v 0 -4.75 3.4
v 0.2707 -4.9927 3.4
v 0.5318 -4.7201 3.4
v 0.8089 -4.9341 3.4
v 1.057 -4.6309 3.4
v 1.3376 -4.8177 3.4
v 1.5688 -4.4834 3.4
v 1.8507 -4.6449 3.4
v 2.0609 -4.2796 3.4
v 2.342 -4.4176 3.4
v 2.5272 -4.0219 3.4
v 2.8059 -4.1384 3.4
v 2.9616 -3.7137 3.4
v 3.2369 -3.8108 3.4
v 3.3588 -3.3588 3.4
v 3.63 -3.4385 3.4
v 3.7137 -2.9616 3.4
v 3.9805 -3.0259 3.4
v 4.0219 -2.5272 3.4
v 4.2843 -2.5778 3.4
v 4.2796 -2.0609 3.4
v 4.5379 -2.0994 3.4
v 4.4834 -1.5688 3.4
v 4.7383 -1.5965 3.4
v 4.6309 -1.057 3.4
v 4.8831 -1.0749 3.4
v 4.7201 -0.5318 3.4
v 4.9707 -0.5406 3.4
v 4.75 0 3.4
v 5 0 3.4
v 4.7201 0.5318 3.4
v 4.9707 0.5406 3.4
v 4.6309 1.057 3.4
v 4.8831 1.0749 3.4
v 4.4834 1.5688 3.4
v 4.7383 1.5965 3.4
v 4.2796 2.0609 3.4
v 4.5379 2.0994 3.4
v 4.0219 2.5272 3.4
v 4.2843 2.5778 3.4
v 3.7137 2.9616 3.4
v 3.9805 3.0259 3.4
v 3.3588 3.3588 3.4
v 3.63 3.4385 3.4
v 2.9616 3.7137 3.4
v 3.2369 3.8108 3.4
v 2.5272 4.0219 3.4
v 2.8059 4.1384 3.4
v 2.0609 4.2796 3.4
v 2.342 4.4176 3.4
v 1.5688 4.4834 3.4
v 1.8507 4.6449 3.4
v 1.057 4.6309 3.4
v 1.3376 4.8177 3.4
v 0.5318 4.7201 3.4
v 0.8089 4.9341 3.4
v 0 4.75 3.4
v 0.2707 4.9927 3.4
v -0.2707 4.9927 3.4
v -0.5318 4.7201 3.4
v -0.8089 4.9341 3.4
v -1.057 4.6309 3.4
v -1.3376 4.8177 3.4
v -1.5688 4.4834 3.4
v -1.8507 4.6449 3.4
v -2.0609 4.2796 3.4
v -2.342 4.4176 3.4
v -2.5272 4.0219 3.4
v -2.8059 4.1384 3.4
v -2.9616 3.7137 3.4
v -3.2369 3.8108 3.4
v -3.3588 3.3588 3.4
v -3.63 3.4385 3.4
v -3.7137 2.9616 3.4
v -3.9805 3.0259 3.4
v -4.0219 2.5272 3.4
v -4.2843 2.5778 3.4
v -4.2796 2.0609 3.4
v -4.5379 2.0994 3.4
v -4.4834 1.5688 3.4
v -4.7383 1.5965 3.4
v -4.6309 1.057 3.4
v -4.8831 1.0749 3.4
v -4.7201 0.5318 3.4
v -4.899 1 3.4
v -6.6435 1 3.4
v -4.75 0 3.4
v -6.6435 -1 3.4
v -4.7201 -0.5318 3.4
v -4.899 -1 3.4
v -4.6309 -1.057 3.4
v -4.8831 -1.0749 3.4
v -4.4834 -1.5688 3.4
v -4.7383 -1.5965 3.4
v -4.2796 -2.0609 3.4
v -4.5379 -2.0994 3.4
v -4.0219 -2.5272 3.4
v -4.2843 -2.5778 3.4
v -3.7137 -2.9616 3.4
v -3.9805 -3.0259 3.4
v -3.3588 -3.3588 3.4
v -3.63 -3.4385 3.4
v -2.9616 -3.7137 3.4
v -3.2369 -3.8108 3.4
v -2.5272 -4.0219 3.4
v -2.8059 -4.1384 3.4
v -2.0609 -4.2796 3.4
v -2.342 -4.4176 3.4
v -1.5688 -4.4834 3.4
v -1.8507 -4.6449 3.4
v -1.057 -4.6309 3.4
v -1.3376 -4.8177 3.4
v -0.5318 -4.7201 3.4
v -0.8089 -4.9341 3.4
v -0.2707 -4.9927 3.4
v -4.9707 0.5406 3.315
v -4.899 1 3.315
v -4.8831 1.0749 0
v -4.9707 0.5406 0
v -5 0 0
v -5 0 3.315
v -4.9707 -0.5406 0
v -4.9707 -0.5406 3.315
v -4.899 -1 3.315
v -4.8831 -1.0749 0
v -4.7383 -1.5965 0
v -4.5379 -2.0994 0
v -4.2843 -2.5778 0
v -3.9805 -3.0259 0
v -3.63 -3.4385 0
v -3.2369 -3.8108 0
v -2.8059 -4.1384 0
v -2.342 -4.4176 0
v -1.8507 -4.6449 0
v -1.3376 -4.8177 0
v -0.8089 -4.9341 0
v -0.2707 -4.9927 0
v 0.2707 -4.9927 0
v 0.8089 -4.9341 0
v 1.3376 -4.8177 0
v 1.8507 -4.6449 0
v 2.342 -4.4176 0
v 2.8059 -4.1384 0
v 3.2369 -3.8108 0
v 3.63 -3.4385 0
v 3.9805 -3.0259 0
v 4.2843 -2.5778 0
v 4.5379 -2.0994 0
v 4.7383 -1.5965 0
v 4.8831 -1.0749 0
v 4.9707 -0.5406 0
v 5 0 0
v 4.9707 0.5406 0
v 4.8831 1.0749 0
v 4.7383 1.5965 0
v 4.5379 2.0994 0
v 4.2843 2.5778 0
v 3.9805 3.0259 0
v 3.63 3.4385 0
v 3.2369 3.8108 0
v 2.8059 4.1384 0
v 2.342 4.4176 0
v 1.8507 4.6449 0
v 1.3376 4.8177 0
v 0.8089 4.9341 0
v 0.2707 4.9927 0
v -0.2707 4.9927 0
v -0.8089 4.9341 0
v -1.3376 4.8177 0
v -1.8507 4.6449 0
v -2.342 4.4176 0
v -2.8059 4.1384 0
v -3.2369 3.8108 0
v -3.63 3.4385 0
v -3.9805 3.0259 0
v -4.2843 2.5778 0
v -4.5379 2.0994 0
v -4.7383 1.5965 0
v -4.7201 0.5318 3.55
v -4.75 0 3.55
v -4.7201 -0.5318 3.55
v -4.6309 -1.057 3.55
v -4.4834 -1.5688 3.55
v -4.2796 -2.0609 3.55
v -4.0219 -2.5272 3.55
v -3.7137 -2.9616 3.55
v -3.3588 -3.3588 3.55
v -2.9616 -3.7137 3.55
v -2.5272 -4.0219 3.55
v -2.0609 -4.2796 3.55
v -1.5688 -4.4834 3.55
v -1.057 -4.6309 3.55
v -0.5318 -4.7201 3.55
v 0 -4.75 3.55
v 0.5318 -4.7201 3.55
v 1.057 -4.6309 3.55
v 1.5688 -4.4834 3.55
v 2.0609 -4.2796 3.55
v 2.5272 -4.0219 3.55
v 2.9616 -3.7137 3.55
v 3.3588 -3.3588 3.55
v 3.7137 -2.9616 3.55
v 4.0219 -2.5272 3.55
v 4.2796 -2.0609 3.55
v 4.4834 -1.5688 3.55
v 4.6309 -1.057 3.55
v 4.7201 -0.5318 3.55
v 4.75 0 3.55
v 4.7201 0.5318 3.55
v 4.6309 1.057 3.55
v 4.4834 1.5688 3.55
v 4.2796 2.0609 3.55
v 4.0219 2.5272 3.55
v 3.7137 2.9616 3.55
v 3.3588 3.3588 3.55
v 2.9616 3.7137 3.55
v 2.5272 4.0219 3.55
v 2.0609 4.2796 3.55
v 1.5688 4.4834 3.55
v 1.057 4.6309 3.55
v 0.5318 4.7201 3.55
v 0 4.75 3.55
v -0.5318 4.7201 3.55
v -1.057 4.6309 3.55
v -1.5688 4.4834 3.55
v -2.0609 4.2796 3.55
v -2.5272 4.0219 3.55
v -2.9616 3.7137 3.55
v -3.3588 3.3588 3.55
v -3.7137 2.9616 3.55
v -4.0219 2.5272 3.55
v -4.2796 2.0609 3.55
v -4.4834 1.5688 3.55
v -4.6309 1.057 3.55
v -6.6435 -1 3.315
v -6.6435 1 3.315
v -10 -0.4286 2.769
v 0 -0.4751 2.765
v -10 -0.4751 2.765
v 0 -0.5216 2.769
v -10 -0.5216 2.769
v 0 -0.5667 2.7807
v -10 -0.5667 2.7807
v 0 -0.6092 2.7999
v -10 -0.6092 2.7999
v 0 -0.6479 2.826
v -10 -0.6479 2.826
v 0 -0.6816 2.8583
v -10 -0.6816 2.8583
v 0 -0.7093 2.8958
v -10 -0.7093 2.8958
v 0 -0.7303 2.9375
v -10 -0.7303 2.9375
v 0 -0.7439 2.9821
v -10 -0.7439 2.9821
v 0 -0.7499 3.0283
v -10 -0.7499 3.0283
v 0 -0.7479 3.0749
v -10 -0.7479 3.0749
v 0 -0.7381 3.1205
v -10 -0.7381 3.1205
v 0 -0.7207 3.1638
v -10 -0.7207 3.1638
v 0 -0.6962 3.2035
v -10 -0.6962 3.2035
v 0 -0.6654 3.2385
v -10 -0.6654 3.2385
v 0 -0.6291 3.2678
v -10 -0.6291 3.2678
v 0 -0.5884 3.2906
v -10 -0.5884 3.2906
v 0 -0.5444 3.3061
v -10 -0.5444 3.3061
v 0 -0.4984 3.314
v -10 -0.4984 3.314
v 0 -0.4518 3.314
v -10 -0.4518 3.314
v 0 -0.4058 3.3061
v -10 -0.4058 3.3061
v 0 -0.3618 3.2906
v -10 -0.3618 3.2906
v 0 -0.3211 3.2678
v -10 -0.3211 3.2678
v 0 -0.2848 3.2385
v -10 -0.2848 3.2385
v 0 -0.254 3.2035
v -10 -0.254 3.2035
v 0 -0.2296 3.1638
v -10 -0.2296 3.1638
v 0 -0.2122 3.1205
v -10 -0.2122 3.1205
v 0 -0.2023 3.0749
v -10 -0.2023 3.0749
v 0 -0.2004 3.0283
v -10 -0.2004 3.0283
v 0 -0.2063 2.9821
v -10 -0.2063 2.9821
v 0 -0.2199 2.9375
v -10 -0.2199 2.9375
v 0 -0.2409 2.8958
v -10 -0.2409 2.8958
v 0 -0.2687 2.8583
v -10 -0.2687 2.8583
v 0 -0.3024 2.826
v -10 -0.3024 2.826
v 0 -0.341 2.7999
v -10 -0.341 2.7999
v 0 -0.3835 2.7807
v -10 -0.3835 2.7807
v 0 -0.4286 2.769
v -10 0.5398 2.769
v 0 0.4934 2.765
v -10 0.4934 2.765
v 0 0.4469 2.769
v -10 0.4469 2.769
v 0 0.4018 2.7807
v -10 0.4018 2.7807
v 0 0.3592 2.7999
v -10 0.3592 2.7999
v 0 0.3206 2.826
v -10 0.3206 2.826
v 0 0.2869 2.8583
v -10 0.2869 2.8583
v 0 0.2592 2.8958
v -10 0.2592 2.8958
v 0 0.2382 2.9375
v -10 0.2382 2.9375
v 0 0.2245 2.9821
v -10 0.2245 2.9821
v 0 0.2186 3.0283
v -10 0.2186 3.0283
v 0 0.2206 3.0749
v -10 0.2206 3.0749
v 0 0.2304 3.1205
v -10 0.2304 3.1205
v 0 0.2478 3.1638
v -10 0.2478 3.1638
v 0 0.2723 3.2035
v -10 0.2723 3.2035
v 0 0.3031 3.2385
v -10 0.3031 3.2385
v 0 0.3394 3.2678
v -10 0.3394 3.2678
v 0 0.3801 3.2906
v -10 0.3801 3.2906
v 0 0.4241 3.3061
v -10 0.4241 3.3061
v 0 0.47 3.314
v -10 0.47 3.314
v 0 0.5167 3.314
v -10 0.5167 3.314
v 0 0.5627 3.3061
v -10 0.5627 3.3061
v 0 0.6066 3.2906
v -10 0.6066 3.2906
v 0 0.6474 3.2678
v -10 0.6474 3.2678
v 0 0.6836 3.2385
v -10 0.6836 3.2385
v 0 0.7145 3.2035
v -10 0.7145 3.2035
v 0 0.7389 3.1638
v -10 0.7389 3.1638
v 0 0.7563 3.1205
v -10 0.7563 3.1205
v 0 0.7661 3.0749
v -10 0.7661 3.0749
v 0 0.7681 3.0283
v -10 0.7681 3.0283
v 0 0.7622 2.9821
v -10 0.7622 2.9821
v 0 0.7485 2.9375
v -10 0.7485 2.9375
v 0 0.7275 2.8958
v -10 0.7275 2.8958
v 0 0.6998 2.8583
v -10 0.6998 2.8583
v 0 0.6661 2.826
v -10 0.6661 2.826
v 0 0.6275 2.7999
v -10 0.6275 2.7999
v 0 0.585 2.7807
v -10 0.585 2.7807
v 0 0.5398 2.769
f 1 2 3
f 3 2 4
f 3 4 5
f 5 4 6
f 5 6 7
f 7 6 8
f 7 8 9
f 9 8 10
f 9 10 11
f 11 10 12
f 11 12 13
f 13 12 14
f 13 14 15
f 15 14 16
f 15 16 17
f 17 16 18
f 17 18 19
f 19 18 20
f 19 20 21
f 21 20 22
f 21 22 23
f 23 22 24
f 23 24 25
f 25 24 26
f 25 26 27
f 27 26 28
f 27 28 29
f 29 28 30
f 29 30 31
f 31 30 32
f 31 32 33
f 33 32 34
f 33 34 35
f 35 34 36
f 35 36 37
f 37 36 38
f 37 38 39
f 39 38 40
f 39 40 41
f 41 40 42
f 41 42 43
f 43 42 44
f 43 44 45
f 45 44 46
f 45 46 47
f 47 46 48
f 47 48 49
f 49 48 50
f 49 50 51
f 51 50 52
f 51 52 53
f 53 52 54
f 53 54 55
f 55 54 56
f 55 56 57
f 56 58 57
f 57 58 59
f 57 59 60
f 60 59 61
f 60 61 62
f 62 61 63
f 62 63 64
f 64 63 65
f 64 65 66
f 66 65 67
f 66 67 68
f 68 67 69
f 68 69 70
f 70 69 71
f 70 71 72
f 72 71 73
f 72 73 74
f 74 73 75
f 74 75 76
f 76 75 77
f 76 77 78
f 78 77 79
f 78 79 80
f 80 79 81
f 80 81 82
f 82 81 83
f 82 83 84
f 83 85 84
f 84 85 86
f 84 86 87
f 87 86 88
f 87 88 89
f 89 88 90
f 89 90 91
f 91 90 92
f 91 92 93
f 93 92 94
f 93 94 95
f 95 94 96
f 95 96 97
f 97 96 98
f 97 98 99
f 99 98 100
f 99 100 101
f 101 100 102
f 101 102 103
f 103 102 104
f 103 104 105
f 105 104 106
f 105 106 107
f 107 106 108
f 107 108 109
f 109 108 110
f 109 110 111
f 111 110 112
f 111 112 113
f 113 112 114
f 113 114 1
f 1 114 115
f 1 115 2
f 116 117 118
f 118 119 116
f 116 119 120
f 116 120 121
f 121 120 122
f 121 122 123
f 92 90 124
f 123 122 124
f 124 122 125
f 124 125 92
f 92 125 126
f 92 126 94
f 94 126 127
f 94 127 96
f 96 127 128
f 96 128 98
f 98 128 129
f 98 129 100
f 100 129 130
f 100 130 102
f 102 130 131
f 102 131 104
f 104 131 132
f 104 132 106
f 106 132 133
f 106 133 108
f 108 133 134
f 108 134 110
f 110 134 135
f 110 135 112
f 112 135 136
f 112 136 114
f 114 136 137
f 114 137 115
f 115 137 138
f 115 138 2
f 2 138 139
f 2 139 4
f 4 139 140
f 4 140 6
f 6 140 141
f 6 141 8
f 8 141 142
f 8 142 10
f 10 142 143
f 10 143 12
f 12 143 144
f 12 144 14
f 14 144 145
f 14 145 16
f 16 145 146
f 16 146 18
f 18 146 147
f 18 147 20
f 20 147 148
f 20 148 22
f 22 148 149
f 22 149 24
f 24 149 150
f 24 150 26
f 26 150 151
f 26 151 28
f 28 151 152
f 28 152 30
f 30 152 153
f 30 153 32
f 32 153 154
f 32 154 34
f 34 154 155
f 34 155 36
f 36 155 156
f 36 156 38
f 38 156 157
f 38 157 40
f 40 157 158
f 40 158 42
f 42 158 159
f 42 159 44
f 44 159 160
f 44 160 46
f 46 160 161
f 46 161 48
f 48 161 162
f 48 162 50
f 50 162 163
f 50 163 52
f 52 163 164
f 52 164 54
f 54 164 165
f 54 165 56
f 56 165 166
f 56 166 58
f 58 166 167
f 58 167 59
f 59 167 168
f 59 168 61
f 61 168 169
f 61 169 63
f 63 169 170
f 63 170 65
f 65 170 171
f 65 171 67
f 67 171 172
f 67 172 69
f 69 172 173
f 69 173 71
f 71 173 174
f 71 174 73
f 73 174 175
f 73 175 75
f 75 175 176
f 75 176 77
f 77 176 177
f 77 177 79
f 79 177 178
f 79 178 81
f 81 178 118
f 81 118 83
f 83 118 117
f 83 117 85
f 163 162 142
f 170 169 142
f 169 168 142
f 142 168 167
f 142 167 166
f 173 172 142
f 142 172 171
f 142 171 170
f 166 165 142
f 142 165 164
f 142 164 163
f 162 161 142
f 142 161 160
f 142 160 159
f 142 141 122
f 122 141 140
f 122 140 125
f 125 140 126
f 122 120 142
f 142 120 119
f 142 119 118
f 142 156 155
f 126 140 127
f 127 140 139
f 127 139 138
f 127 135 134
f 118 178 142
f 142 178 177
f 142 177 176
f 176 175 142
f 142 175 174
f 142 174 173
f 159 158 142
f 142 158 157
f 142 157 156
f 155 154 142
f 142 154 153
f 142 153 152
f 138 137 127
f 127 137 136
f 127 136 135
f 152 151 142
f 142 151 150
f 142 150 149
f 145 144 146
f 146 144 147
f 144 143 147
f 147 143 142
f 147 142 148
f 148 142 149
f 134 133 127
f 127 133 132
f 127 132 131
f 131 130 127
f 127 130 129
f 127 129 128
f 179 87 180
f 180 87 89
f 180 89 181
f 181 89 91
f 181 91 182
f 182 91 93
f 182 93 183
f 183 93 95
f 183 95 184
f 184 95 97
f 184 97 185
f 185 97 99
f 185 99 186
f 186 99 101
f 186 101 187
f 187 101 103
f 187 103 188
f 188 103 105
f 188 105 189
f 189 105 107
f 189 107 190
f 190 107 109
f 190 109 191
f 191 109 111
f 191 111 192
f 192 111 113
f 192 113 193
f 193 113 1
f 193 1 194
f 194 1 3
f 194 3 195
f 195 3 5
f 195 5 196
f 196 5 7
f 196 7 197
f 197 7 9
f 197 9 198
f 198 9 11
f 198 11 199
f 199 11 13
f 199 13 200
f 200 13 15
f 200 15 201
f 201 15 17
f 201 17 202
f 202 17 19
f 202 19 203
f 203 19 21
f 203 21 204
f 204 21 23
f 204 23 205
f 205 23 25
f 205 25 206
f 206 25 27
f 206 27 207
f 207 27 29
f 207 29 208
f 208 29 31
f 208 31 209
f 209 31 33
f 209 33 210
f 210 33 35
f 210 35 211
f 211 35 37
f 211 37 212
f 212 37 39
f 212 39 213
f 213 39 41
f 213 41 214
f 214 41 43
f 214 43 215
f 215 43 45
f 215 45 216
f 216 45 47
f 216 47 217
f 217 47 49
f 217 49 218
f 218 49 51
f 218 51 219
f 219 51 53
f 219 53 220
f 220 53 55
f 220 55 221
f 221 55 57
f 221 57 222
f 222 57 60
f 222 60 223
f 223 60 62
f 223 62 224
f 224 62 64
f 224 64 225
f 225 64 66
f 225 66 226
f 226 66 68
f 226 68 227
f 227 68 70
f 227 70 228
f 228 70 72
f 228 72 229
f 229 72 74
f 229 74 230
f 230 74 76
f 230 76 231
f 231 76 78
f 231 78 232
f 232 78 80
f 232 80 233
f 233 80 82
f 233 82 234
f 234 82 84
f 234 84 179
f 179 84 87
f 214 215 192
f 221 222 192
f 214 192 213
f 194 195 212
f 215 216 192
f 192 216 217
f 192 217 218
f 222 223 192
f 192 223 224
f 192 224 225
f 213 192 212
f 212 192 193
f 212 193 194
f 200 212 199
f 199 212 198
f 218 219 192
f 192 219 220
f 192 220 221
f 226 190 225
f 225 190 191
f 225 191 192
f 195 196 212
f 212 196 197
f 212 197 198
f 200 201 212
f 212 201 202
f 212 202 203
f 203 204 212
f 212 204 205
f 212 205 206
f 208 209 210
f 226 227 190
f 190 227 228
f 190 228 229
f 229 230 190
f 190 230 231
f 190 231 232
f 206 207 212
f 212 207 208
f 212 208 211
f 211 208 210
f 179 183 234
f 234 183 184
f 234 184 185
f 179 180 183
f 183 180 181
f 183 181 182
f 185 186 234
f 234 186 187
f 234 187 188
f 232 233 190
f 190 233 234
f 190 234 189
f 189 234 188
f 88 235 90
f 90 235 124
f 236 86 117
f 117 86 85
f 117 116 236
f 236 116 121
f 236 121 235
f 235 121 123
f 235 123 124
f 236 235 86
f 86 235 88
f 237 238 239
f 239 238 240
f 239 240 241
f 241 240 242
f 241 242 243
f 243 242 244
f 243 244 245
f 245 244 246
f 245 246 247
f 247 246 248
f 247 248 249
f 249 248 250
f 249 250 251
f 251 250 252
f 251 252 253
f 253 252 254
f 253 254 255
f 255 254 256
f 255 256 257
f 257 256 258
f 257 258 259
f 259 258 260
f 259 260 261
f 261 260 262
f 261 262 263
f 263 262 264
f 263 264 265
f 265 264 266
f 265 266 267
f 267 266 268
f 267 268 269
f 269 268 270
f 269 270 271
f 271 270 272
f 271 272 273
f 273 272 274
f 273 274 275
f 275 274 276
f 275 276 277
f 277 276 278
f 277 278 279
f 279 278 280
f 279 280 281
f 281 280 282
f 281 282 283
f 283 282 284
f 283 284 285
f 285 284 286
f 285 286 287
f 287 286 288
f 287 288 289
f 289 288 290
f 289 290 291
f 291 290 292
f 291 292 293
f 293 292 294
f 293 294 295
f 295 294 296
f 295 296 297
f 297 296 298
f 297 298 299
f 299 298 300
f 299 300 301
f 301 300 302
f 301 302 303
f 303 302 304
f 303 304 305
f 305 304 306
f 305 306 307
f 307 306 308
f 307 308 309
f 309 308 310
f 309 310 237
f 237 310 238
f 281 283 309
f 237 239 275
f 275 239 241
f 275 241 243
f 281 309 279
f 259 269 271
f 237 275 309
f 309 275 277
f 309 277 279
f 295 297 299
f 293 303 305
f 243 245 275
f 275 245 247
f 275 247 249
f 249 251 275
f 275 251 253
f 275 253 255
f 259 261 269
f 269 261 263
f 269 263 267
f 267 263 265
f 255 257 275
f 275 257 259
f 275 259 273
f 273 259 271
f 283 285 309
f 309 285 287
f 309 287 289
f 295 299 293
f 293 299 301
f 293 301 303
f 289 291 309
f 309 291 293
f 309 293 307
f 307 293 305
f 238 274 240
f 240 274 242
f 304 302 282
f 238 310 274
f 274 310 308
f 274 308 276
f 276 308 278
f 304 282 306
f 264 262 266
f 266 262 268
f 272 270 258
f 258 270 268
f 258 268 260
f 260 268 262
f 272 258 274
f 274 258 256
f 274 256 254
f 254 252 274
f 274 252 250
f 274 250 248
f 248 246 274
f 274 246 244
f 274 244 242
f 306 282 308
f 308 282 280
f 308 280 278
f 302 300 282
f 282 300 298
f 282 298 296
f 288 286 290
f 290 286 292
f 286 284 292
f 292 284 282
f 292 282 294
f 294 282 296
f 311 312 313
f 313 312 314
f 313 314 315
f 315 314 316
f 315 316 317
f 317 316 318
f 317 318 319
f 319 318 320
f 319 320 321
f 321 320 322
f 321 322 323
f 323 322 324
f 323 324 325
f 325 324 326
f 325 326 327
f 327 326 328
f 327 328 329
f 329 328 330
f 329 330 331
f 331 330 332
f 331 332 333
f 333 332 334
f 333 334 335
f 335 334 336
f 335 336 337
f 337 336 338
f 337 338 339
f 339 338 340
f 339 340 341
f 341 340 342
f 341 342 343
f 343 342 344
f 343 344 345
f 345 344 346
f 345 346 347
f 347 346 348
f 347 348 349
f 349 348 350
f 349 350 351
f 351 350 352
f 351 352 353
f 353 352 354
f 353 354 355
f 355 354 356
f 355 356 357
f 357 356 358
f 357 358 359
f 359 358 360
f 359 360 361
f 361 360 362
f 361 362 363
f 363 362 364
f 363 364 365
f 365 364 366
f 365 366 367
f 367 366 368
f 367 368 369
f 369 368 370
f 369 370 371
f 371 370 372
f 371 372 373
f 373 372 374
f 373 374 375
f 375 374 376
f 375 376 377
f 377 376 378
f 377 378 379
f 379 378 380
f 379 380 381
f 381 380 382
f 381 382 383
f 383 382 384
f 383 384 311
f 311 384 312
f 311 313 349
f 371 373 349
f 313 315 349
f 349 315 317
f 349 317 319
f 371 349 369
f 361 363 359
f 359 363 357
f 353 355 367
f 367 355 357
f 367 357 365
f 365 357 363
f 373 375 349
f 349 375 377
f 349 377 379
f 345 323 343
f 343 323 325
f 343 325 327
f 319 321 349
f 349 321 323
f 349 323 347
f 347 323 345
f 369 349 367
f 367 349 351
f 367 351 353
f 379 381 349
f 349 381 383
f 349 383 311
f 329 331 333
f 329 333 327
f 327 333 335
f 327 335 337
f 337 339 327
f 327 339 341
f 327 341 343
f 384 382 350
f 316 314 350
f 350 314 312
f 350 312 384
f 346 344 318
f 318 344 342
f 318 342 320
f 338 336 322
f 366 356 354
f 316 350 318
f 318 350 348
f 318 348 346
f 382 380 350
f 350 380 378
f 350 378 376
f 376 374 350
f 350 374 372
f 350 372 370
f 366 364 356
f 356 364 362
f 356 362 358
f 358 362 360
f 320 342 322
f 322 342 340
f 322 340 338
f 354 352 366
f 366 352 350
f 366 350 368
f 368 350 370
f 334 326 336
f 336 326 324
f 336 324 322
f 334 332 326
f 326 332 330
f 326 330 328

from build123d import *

# Parameters (mm, degrees)
SKETCH1_R             = 5
BOSS_EXTRUDE1_DEPTH   = 3.4
SKETCH2_R             = 4.75
BOSS_EXTRUDE2_DEPTH   = 0.15
BOSS_EXTRUDE3_DEPTH   = 0.085
SKETCH5_R             = 0.275
BOSS_EXTRUDE5_DEPTH   = 10
BOSS_EXTRUDE5_2_DEPTH = 10


with BuildPart() as part:
    # Sketch1 → Boss-Extrude1 (new body)
    with BuildSketch(Plane.XY):
        Circle(SKETCH1_R)
    extrude(amount=BOSS_EXTRUDE1_DEPTH)

    # Sketch2 → Boss-Extrude2 (add)
    with BuildSketch(Plane.XY.offset(3.4)):
        Circle(SKETCH2_R)
    extrude(amount=BOSS_EXTRUDE2_DEPTH)

    # Sketch4 → Boss-Extrude3 (add)
    with BuildSketch(Plane.XY.offset(3.4)):
        with BuildLine():
            Line((-4.643543905, 1), (-6.643543905, 1))
            Line((-6.643543905, 1), (-6.643543905, -1))
            Line((-6.643543905, -1), (-4.643543905, -1))
            ThreePointArc((-4.643543905, -1), (-4.75, 0), (-4.643543905, 1))
        make_face()
    extrude(amount=-BOSS_EXTRUDE3_DEPTH)


with BuildPart() as body_2:
    # Sketch5 → Boss-Extrude5 (new body)
    with BuildSketch(Plane(origin=(0, 0, 0), x_dir=(0, 0, -1), z_dir=(1, 0, 0))):
        with Locations((-3.04, 0.493364025)):
            Circle(SKETCH5_R)
    extrude(amount=-BOSS_EXTRUDE5_DEPTH)


with BuildPart() as body_3:
    # Sketch5 → Boss-Extrude5 2 (new body)
    with BuildSketch(Plane(origin=(0, 0, 0), x_dir=(0, 0, -1), z_dir=(1, 0, 0))):
        with Locations((-3.04, -0.475118647)):
            Circle(SKETCH5_R)
    extrude(amount=-BOSS_EXTRUDE5_2_DEPTH)


solid = Compound([part.part, body_2.part, body_3.part])
